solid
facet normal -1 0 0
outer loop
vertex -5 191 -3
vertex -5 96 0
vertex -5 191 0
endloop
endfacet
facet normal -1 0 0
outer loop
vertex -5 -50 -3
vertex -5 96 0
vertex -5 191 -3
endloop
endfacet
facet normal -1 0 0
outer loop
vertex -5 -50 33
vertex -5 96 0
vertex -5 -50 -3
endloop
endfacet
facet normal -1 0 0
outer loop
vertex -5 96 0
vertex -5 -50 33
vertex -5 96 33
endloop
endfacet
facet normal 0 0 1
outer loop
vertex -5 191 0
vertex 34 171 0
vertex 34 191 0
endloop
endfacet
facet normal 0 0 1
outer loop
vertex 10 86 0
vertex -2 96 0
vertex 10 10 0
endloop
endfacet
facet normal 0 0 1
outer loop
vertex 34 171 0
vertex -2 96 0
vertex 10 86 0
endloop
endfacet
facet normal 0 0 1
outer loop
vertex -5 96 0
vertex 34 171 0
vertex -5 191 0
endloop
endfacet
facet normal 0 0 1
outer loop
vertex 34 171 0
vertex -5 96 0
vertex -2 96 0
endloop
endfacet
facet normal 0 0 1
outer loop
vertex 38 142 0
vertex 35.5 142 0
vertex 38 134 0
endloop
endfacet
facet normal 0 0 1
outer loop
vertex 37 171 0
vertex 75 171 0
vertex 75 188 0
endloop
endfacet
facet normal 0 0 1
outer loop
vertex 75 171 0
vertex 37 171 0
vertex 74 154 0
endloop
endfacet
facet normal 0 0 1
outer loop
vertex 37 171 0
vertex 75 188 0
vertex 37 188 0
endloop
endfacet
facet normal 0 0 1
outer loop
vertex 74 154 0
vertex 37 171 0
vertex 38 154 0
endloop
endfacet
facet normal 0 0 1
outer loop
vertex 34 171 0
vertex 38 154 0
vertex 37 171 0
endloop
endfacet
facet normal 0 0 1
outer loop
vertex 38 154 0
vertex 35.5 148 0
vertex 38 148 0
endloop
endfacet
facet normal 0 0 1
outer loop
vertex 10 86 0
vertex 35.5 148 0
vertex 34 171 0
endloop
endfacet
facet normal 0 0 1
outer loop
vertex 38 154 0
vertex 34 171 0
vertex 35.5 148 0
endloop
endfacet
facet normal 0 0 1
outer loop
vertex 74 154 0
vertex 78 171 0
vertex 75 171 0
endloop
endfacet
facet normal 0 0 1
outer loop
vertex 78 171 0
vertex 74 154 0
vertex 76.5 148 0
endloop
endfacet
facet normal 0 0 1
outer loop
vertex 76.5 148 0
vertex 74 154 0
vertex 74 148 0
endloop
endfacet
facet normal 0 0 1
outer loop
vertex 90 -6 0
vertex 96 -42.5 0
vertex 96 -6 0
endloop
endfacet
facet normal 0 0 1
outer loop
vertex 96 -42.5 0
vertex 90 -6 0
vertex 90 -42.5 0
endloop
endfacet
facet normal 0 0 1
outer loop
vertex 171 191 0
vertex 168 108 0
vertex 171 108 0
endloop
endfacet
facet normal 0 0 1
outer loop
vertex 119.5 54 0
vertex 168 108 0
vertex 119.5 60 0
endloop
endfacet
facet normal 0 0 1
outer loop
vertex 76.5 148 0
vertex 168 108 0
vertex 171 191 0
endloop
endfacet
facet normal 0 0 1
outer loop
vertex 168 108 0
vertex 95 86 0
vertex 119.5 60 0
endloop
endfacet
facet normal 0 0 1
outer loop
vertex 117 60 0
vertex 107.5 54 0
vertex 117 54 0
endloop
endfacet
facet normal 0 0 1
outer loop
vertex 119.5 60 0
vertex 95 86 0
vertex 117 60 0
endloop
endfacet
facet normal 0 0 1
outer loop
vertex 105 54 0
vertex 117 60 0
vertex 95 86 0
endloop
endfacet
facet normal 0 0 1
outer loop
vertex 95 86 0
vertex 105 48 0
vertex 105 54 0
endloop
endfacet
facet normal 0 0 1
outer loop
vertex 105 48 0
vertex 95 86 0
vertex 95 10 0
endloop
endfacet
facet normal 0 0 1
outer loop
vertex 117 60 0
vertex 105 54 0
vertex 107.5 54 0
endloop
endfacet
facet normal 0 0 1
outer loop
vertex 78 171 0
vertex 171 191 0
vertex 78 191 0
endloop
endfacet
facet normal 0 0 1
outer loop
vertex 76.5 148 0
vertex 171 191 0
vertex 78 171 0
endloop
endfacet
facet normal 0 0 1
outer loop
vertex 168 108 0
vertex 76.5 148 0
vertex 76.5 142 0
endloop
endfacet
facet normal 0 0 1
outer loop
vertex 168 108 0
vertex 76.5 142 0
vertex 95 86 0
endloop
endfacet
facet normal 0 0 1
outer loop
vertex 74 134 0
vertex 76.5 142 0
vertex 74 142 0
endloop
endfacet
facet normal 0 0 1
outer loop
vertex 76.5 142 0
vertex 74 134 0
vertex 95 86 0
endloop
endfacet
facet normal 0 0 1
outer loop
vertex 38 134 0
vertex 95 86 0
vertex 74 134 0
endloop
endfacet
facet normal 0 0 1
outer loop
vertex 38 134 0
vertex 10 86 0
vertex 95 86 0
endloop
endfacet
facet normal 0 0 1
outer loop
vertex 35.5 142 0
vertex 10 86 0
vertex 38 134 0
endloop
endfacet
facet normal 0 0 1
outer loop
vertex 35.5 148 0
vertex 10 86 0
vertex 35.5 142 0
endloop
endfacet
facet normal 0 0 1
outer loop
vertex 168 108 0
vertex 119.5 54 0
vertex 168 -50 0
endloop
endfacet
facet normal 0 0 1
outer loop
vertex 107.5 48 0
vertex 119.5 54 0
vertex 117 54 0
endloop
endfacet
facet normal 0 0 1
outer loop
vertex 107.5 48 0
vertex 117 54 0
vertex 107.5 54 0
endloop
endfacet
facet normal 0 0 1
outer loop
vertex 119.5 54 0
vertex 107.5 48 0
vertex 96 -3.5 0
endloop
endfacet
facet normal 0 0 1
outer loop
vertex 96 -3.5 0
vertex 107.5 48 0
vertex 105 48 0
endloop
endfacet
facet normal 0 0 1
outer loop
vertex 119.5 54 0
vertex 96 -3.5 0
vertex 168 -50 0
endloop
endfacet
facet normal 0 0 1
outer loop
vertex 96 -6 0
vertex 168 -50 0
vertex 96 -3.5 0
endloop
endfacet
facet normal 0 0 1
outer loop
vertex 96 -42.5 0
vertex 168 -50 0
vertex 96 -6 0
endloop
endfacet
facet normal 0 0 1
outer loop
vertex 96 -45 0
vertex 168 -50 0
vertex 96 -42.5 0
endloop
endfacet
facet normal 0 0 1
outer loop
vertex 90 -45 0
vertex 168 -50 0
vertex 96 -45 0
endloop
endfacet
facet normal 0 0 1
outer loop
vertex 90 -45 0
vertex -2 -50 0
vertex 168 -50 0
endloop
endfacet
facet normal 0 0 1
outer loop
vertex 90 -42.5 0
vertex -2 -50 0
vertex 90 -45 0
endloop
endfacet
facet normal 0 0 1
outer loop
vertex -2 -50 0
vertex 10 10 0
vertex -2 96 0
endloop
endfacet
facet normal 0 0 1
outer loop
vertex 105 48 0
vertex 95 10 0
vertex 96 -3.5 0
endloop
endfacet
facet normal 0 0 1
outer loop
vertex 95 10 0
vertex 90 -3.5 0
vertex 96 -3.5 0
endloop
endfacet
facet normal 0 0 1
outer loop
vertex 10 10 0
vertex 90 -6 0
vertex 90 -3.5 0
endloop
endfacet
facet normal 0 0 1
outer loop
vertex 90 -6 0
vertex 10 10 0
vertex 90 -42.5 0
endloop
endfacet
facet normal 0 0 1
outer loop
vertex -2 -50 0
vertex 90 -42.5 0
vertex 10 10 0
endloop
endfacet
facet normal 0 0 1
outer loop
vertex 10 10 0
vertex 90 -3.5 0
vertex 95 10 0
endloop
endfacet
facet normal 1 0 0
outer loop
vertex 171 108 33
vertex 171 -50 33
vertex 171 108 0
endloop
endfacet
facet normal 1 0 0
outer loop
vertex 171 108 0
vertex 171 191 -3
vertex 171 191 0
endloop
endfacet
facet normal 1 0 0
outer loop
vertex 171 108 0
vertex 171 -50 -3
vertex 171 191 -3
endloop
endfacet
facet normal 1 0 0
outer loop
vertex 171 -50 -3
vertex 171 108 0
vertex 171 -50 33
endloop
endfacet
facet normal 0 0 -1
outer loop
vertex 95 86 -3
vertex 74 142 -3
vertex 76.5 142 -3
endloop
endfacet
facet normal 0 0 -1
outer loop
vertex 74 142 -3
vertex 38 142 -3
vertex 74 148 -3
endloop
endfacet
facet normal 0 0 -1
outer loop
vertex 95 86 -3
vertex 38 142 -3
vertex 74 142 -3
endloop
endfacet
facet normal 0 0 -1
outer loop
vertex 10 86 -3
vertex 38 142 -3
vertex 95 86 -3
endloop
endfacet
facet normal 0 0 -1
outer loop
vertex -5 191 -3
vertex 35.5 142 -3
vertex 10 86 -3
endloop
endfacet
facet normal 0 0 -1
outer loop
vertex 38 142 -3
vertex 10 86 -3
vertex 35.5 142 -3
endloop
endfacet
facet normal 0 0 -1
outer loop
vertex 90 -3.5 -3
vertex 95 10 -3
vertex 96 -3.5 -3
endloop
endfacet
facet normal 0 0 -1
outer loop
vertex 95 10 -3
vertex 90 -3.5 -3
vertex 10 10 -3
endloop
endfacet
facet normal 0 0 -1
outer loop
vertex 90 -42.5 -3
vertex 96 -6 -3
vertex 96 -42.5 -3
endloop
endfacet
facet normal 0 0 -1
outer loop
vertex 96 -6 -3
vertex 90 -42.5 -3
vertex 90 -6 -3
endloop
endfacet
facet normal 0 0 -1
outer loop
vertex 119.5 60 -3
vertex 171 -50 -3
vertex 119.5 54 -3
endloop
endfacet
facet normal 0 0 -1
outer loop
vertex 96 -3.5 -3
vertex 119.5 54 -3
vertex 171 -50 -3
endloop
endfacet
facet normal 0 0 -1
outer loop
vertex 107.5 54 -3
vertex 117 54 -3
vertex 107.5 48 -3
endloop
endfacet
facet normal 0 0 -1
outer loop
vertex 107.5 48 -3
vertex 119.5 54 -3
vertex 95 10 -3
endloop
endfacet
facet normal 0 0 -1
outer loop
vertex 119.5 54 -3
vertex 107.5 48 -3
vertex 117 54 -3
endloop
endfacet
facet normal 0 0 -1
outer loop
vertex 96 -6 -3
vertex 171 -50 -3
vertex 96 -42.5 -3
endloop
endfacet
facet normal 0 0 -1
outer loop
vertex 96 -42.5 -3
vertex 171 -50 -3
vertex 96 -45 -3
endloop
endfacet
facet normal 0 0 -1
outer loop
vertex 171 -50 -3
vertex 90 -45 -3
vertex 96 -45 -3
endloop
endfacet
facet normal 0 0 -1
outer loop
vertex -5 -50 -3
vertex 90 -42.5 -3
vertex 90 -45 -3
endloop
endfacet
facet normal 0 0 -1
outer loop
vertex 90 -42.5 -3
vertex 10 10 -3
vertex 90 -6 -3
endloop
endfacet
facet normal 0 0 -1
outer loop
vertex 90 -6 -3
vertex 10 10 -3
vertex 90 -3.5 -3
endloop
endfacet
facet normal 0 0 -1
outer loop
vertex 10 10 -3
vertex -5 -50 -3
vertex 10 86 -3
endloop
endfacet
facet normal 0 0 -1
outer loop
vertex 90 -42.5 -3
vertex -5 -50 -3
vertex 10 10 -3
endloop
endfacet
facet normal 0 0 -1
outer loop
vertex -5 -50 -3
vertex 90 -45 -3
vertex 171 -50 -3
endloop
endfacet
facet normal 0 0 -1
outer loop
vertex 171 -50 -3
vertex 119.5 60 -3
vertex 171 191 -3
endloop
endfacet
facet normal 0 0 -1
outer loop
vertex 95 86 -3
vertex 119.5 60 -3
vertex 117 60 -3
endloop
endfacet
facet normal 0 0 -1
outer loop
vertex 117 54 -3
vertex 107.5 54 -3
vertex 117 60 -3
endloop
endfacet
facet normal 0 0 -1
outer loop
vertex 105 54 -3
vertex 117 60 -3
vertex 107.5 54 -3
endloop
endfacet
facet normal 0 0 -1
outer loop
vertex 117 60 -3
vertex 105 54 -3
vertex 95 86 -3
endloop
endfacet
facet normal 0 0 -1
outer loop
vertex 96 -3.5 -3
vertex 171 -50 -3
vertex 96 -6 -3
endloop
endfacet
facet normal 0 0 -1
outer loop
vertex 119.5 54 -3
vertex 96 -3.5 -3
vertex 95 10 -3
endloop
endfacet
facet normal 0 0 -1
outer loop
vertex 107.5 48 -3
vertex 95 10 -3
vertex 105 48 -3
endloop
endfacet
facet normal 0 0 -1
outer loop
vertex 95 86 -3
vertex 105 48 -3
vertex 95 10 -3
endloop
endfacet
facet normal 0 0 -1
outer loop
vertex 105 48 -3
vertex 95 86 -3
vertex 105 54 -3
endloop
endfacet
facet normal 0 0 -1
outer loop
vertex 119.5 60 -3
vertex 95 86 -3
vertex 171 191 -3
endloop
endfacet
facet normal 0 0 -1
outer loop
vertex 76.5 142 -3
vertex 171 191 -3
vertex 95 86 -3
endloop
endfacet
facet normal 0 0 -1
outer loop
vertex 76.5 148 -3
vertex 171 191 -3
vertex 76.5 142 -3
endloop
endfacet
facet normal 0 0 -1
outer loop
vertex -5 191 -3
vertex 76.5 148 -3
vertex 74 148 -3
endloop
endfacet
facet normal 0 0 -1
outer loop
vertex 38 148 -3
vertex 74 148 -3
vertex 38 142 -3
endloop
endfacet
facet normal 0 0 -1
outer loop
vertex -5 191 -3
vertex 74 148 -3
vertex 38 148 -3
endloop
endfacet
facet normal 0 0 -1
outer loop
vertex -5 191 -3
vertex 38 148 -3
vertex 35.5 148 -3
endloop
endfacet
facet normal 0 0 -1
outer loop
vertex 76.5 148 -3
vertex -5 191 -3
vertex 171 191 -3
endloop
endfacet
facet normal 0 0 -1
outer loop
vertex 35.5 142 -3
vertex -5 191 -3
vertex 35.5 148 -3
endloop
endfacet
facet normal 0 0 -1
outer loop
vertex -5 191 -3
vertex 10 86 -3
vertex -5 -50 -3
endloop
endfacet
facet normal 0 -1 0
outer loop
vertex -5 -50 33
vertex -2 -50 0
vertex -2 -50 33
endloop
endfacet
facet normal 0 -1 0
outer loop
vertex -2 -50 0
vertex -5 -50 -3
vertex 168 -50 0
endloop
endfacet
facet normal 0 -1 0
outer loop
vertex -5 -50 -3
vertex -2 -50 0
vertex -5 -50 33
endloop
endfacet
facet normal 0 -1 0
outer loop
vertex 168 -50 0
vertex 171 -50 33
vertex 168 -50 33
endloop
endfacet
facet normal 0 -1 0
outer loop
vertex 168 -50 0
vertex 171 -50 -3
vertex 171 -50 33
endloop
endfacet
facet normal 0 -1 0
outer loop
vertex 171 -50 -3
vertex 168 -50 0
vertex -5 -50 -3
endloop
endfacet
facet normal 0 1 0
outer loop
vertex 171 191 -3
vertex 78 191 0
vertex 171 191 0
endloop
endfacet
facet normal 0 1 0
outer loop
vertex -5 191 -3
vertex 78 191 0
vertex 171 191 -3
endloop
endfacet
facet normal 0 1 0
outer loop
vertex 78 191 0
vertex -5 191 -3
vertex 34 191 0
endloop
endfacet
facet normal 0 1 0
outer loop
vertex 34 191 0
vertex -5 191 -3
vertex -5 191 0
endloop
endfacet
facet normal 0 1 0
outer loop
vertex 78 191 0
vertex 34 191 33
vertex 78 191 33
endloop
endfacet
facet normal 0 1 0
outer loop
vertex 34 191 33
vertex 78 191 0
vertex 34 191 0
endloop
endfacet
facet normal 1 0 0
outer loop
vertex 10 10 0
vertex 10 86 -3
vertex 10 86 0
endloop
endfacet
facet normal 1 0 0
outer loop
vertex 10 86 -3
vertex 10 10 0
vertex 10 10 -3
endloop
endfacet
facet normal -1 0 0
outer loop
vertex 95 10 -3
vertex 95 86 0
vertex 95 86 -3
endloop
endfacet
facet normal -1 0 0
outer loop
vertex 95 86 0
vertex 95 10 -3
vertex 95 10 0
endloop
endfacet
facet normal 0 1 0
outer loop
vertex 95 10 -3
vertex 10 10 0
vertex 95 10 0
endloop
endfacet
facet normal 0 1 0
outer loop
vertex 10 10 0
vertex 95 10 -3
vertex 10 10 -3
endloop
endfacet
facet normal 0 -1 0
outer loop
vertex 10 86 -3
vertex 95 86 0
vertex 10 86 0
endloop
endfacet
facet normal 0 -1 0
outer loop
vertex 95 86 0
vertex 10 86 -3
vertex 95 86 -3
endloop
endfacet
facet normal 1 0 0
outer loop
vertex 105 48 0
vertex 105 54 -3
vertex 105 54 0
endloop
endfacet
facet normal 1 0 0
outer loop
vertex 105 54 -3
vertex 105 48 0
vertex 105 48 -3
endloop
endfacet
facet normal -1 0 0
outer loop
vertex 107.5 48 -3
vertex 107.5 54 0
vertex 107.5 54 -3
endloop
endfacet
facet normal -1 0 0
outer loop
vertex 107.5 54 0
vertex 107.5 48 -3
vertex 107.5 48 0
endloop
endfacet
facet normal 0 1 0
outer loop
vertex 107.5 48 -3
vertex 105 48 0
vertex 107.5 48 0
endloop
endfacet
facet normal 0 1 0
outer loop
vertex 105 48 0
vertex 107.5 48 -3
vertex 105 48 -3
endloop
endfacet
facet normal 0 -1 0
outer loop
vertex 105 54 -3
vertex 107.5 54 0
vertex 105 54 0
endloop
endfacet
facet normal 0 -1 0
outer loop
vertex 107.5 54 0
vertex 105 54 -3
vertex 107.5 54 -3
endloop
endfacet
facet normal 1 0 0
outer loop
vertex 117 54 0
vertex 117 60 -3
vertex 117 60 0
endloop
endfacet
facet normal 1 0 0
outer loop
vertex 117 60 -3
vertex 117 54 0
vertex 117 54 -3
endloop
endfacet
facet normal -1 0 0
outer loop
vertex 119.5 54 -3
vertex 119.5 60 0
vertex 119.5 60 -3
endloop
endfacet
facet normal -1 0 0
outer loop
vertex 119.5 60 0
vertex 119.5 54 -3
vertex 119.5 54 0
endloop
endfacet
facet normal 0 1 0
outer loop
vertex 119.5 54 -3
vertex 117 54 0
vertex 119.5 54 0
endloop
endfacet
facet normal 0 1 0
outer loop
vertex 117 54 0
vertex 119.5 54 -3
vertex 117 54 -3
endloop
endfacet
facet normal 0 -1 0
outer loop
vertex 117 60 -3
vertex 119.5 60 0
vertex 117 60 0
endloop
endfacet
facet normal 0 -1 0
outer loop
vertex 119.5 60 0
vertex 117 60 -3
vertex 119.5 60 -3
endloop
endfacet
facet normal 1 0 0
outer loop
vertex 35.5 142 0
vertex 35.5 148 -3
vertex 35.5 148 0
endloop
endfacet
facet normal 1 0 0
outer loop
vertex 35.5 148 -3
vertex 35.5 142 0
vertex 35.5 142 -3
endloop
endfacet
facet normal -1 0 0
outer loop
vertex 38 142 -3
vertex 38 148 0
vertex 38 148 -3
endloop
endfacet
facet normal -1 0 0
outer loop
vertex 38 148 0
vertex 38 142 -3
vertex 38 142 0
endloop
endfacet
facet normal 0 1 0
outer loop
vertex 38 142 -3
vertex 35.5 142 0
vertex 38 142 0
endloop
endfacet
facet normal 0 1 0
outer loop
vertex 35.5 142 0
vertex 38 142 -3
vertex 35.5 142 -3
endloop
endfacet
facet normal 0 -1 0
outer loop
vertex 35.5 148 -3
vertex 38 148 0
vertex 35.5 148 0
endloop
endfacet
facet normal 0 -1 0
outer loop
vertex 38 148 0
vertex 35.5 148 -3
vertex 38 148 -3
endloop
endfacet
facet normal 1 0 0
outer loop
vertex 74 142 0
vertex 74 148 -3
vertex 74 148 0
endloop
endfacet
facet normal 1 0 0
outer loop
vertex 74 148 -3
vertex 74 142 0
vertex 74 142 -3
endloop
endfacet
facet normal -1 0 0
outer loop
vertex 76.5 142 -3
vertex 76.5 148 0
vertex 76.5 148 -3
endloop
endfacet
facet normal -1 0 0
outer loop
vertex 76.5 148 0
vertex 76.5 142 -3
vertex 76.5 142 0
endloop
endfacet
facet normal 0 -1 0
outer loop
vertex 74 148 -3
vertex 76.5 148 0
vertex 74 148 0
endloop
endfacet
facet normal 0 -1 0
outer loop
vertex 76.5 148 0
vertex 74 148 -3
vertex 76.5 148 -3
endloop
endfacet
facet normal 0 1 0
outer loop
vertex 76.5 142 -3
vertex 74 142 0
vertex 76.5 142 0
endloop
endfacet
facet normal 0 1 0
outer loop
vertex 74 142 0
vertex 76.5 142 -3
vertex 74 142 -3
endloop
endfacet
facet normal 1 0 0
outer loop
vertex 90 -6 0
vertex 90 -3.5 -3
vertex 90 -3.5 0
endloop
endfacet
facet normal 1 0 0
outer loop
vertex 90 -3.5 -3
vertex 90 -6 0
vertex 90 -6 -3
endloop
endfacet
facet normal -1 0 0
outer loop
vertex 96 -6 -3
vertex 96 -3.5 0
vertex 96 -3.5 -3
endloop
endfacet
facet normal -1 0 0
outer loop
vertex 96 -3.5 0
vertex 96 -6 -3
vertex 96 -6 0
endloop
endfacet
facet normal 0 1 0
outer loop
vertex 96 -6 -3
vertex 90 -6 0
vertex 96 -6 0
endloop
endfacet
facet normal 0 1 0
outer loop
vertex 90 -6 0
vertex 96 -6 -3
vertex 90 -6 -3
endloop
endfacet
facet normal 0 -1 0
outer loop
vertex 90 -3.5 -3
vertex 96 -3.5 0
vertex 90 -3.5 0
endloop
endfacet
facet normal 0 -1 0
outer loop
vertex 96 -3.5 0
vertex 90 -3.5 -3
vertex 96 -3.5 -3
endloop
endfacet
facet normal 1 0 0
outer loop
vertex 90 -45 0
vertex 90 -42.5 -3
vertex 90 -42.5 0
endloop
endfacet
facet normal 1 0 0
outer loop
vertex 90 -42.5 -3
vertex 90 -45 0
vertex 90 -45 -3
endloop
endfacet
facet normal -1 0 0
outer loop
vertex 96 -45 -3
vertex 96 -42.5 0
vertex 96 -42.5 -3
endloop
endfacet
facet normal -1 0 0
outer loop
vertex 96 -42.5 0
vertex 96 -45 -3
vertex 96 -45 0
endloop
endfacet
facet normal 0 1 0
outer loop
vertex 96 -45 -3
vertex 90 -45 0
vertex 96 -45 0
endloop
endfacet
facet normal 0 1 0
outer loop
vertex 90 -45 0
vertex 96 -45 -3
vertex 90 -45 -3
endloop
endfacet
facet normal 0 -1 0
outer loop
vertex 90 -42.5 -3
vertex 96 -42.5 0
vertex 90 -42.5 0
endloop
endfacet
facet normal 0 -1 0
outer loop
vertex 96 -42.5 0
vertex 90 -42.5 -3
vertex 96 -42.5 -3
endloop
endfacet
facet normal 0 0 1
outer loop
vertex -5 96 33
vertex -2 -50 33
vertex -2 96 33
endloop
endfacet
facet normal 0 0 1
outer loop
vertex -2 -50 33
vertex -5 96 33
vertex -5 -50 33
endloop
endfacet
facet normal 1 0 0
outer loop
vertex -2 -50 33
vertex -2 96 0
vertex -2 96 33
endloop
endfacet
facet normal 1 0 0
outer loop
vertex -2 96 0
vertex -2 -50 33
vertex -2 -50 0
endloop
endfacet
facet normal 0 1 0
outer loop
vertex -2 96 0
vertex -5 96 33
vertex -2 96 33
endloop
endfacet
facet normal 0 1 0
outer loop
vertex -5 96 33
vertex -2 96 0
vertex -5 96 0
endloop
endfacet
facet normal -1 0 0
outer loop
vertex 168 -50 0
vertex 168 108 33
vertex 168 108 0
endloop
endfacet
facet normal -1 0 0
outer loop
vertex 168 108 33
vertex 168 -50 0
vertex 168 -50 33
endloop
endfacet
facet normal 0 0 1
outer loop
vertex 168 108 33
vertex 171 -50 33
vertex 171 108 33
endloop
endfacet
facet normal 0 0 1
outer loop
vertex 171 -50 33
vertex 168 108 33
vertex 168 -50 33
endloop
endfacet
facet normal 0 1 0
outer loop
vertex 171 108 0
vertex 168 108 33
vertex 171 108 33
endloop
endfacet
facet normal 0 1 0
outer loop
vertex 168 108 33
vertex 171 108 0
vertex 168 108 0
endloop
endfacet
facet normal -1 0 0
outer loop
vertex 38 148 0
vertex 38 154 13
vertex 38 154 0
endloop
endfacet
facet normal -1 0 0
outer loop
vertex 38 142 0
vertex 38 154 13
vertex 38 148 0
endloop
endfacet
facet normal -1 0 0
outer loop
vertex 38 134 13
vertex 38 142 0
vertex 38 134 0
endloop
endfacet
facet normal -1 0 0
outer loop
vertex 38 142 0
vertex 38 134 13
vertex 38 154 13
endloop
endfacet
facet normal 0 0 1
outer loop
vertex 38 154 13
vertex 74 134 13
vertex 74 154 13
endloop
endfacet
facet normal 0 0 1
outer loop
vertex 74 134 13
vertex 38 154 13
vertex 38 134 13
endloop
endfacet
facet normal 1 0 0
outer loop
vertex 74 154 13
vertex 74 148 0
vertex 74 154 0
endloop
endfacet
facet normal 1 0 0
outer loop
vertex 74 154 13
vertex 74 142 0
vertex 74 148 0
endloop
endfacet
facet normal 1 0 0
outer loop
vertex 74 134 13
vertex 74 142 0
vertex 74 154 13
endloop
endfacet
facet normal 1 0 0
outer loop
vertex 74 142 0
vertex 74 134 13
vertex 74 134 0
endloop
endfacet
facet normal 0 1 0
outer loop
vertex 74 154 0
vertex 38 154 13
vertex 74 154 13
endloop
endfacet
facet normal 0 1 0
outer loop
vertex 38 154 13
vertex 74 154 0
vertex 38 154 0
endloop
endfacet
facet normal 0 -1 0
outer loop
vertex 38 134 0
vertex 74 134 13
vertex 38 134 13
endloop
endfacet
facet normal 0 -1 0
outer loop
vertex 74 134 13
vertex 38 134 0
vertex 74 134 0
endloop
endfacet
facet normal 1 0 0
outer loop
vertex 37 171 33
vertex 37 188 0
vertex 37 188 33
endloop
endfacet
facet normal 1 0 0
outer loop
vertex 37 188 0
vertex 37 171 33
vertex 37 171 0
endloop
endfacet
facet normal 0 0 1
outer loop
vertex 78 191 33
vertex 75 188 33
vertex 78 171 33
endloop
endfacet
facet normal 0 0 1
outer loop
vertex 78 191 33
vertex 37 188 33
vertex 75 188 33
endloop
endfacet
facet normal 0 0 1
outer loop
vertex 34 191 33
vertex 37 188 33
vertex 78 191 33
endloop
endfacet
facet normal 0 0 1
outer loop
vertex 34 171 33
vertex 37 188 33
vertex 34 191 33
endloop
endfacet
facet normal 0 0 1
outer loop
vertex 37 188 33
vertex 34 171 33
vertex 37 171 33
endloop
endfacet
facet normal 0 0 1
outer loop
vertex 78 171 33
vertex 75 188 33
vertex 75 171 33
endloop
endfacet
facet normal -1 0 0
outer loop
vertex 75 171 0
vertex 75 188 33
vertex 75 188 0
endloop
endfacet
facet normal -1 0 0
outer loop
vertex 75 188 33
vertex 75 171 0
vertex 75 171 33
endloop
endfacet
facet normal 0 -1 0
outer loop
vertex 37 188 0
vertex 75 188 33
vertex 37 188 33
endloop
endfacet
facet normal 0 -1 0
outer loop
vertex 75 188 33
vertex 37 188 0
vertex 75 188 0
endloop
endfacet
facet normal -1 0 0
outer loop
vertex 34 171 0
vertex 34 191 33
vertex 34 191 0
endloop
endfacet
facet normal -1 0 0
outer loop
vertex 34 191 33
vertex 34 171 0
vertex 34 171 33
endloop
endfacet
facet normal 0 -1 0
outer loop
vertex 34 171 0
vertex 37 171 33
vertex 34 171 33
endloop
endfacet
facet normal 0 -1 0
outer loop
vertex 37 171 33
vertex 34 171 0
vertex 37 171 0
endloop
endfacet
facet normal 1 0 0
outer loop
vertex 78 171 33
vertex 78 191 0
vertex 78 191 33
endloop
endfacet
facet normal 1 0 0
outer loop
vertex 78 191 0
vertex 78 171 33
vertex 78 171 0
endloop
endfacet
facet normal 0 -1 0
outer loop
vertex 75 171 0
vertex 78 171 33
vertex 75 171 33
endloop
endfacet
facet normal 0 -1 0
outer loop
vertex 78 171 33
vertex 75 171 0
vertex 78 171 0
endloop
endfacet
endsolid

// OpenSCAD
// meanwell LRS psu cover
// **************************

width      = 176;
height = 30;
depth = 241;
thick = 3;
$fn=50;


difference () {
  translate ([-5,-50,-thick]) cube([width,depth,thick /*height*/]);
  
  //cooling cutout under odroid
  translate ([10,10,-thick-0.5]) cube([105-20,96-20,thick+1]);  
    
  //odroid cable tie
  translate ([105,96/2,-thick-0.5]) cube([2.5,6,thick+1]);
    
  //psu cable tie
  translate ([width-12-47,108/2,-thick-0.5]) cube([2.5,6,thick+1]);

  //wifi cable tie
  translate ([38-2.5,96+92/2,-thick-0.5]) cube([2.5,6,thick+1]);
  translate ([38+36,96+92/2,-thick-0.5]) cube([2.5,6,thick+1]);

  //dc cable tie
  translate ([90,-6,-thick-0.5]) cube([6,2.5,thick+1]);
  translate ([90,-45,-thick-0.5]) cube([6,2.5,thick+1]);


}

//side
  translate ([-5,-50,0]) cube([thick,50+96,33]);

//side
  translate ([width-5-thick,-50,0]) cube([thick,50+108,33]);

//wifi support
  translate ([38,96+92/2-8,0]) cube([36,20,13]);

  translate ([38-1,96+92,0]) cube([36+2,thick,33]);
  translate ([38-thick-1,96+92-20+thick,0]) cube([thick,20,33]);
  translate ([38+37,96+92-20+thick,0]) cube([thick,20,33]);


//odroid
//color("red") cube([105,96,33]);
//translate ([38,96,13]) color("red") cube([36,92,9]);

//psu
//translate ([120,0,0]) color("green") cube([47,108,30]);
   

   
